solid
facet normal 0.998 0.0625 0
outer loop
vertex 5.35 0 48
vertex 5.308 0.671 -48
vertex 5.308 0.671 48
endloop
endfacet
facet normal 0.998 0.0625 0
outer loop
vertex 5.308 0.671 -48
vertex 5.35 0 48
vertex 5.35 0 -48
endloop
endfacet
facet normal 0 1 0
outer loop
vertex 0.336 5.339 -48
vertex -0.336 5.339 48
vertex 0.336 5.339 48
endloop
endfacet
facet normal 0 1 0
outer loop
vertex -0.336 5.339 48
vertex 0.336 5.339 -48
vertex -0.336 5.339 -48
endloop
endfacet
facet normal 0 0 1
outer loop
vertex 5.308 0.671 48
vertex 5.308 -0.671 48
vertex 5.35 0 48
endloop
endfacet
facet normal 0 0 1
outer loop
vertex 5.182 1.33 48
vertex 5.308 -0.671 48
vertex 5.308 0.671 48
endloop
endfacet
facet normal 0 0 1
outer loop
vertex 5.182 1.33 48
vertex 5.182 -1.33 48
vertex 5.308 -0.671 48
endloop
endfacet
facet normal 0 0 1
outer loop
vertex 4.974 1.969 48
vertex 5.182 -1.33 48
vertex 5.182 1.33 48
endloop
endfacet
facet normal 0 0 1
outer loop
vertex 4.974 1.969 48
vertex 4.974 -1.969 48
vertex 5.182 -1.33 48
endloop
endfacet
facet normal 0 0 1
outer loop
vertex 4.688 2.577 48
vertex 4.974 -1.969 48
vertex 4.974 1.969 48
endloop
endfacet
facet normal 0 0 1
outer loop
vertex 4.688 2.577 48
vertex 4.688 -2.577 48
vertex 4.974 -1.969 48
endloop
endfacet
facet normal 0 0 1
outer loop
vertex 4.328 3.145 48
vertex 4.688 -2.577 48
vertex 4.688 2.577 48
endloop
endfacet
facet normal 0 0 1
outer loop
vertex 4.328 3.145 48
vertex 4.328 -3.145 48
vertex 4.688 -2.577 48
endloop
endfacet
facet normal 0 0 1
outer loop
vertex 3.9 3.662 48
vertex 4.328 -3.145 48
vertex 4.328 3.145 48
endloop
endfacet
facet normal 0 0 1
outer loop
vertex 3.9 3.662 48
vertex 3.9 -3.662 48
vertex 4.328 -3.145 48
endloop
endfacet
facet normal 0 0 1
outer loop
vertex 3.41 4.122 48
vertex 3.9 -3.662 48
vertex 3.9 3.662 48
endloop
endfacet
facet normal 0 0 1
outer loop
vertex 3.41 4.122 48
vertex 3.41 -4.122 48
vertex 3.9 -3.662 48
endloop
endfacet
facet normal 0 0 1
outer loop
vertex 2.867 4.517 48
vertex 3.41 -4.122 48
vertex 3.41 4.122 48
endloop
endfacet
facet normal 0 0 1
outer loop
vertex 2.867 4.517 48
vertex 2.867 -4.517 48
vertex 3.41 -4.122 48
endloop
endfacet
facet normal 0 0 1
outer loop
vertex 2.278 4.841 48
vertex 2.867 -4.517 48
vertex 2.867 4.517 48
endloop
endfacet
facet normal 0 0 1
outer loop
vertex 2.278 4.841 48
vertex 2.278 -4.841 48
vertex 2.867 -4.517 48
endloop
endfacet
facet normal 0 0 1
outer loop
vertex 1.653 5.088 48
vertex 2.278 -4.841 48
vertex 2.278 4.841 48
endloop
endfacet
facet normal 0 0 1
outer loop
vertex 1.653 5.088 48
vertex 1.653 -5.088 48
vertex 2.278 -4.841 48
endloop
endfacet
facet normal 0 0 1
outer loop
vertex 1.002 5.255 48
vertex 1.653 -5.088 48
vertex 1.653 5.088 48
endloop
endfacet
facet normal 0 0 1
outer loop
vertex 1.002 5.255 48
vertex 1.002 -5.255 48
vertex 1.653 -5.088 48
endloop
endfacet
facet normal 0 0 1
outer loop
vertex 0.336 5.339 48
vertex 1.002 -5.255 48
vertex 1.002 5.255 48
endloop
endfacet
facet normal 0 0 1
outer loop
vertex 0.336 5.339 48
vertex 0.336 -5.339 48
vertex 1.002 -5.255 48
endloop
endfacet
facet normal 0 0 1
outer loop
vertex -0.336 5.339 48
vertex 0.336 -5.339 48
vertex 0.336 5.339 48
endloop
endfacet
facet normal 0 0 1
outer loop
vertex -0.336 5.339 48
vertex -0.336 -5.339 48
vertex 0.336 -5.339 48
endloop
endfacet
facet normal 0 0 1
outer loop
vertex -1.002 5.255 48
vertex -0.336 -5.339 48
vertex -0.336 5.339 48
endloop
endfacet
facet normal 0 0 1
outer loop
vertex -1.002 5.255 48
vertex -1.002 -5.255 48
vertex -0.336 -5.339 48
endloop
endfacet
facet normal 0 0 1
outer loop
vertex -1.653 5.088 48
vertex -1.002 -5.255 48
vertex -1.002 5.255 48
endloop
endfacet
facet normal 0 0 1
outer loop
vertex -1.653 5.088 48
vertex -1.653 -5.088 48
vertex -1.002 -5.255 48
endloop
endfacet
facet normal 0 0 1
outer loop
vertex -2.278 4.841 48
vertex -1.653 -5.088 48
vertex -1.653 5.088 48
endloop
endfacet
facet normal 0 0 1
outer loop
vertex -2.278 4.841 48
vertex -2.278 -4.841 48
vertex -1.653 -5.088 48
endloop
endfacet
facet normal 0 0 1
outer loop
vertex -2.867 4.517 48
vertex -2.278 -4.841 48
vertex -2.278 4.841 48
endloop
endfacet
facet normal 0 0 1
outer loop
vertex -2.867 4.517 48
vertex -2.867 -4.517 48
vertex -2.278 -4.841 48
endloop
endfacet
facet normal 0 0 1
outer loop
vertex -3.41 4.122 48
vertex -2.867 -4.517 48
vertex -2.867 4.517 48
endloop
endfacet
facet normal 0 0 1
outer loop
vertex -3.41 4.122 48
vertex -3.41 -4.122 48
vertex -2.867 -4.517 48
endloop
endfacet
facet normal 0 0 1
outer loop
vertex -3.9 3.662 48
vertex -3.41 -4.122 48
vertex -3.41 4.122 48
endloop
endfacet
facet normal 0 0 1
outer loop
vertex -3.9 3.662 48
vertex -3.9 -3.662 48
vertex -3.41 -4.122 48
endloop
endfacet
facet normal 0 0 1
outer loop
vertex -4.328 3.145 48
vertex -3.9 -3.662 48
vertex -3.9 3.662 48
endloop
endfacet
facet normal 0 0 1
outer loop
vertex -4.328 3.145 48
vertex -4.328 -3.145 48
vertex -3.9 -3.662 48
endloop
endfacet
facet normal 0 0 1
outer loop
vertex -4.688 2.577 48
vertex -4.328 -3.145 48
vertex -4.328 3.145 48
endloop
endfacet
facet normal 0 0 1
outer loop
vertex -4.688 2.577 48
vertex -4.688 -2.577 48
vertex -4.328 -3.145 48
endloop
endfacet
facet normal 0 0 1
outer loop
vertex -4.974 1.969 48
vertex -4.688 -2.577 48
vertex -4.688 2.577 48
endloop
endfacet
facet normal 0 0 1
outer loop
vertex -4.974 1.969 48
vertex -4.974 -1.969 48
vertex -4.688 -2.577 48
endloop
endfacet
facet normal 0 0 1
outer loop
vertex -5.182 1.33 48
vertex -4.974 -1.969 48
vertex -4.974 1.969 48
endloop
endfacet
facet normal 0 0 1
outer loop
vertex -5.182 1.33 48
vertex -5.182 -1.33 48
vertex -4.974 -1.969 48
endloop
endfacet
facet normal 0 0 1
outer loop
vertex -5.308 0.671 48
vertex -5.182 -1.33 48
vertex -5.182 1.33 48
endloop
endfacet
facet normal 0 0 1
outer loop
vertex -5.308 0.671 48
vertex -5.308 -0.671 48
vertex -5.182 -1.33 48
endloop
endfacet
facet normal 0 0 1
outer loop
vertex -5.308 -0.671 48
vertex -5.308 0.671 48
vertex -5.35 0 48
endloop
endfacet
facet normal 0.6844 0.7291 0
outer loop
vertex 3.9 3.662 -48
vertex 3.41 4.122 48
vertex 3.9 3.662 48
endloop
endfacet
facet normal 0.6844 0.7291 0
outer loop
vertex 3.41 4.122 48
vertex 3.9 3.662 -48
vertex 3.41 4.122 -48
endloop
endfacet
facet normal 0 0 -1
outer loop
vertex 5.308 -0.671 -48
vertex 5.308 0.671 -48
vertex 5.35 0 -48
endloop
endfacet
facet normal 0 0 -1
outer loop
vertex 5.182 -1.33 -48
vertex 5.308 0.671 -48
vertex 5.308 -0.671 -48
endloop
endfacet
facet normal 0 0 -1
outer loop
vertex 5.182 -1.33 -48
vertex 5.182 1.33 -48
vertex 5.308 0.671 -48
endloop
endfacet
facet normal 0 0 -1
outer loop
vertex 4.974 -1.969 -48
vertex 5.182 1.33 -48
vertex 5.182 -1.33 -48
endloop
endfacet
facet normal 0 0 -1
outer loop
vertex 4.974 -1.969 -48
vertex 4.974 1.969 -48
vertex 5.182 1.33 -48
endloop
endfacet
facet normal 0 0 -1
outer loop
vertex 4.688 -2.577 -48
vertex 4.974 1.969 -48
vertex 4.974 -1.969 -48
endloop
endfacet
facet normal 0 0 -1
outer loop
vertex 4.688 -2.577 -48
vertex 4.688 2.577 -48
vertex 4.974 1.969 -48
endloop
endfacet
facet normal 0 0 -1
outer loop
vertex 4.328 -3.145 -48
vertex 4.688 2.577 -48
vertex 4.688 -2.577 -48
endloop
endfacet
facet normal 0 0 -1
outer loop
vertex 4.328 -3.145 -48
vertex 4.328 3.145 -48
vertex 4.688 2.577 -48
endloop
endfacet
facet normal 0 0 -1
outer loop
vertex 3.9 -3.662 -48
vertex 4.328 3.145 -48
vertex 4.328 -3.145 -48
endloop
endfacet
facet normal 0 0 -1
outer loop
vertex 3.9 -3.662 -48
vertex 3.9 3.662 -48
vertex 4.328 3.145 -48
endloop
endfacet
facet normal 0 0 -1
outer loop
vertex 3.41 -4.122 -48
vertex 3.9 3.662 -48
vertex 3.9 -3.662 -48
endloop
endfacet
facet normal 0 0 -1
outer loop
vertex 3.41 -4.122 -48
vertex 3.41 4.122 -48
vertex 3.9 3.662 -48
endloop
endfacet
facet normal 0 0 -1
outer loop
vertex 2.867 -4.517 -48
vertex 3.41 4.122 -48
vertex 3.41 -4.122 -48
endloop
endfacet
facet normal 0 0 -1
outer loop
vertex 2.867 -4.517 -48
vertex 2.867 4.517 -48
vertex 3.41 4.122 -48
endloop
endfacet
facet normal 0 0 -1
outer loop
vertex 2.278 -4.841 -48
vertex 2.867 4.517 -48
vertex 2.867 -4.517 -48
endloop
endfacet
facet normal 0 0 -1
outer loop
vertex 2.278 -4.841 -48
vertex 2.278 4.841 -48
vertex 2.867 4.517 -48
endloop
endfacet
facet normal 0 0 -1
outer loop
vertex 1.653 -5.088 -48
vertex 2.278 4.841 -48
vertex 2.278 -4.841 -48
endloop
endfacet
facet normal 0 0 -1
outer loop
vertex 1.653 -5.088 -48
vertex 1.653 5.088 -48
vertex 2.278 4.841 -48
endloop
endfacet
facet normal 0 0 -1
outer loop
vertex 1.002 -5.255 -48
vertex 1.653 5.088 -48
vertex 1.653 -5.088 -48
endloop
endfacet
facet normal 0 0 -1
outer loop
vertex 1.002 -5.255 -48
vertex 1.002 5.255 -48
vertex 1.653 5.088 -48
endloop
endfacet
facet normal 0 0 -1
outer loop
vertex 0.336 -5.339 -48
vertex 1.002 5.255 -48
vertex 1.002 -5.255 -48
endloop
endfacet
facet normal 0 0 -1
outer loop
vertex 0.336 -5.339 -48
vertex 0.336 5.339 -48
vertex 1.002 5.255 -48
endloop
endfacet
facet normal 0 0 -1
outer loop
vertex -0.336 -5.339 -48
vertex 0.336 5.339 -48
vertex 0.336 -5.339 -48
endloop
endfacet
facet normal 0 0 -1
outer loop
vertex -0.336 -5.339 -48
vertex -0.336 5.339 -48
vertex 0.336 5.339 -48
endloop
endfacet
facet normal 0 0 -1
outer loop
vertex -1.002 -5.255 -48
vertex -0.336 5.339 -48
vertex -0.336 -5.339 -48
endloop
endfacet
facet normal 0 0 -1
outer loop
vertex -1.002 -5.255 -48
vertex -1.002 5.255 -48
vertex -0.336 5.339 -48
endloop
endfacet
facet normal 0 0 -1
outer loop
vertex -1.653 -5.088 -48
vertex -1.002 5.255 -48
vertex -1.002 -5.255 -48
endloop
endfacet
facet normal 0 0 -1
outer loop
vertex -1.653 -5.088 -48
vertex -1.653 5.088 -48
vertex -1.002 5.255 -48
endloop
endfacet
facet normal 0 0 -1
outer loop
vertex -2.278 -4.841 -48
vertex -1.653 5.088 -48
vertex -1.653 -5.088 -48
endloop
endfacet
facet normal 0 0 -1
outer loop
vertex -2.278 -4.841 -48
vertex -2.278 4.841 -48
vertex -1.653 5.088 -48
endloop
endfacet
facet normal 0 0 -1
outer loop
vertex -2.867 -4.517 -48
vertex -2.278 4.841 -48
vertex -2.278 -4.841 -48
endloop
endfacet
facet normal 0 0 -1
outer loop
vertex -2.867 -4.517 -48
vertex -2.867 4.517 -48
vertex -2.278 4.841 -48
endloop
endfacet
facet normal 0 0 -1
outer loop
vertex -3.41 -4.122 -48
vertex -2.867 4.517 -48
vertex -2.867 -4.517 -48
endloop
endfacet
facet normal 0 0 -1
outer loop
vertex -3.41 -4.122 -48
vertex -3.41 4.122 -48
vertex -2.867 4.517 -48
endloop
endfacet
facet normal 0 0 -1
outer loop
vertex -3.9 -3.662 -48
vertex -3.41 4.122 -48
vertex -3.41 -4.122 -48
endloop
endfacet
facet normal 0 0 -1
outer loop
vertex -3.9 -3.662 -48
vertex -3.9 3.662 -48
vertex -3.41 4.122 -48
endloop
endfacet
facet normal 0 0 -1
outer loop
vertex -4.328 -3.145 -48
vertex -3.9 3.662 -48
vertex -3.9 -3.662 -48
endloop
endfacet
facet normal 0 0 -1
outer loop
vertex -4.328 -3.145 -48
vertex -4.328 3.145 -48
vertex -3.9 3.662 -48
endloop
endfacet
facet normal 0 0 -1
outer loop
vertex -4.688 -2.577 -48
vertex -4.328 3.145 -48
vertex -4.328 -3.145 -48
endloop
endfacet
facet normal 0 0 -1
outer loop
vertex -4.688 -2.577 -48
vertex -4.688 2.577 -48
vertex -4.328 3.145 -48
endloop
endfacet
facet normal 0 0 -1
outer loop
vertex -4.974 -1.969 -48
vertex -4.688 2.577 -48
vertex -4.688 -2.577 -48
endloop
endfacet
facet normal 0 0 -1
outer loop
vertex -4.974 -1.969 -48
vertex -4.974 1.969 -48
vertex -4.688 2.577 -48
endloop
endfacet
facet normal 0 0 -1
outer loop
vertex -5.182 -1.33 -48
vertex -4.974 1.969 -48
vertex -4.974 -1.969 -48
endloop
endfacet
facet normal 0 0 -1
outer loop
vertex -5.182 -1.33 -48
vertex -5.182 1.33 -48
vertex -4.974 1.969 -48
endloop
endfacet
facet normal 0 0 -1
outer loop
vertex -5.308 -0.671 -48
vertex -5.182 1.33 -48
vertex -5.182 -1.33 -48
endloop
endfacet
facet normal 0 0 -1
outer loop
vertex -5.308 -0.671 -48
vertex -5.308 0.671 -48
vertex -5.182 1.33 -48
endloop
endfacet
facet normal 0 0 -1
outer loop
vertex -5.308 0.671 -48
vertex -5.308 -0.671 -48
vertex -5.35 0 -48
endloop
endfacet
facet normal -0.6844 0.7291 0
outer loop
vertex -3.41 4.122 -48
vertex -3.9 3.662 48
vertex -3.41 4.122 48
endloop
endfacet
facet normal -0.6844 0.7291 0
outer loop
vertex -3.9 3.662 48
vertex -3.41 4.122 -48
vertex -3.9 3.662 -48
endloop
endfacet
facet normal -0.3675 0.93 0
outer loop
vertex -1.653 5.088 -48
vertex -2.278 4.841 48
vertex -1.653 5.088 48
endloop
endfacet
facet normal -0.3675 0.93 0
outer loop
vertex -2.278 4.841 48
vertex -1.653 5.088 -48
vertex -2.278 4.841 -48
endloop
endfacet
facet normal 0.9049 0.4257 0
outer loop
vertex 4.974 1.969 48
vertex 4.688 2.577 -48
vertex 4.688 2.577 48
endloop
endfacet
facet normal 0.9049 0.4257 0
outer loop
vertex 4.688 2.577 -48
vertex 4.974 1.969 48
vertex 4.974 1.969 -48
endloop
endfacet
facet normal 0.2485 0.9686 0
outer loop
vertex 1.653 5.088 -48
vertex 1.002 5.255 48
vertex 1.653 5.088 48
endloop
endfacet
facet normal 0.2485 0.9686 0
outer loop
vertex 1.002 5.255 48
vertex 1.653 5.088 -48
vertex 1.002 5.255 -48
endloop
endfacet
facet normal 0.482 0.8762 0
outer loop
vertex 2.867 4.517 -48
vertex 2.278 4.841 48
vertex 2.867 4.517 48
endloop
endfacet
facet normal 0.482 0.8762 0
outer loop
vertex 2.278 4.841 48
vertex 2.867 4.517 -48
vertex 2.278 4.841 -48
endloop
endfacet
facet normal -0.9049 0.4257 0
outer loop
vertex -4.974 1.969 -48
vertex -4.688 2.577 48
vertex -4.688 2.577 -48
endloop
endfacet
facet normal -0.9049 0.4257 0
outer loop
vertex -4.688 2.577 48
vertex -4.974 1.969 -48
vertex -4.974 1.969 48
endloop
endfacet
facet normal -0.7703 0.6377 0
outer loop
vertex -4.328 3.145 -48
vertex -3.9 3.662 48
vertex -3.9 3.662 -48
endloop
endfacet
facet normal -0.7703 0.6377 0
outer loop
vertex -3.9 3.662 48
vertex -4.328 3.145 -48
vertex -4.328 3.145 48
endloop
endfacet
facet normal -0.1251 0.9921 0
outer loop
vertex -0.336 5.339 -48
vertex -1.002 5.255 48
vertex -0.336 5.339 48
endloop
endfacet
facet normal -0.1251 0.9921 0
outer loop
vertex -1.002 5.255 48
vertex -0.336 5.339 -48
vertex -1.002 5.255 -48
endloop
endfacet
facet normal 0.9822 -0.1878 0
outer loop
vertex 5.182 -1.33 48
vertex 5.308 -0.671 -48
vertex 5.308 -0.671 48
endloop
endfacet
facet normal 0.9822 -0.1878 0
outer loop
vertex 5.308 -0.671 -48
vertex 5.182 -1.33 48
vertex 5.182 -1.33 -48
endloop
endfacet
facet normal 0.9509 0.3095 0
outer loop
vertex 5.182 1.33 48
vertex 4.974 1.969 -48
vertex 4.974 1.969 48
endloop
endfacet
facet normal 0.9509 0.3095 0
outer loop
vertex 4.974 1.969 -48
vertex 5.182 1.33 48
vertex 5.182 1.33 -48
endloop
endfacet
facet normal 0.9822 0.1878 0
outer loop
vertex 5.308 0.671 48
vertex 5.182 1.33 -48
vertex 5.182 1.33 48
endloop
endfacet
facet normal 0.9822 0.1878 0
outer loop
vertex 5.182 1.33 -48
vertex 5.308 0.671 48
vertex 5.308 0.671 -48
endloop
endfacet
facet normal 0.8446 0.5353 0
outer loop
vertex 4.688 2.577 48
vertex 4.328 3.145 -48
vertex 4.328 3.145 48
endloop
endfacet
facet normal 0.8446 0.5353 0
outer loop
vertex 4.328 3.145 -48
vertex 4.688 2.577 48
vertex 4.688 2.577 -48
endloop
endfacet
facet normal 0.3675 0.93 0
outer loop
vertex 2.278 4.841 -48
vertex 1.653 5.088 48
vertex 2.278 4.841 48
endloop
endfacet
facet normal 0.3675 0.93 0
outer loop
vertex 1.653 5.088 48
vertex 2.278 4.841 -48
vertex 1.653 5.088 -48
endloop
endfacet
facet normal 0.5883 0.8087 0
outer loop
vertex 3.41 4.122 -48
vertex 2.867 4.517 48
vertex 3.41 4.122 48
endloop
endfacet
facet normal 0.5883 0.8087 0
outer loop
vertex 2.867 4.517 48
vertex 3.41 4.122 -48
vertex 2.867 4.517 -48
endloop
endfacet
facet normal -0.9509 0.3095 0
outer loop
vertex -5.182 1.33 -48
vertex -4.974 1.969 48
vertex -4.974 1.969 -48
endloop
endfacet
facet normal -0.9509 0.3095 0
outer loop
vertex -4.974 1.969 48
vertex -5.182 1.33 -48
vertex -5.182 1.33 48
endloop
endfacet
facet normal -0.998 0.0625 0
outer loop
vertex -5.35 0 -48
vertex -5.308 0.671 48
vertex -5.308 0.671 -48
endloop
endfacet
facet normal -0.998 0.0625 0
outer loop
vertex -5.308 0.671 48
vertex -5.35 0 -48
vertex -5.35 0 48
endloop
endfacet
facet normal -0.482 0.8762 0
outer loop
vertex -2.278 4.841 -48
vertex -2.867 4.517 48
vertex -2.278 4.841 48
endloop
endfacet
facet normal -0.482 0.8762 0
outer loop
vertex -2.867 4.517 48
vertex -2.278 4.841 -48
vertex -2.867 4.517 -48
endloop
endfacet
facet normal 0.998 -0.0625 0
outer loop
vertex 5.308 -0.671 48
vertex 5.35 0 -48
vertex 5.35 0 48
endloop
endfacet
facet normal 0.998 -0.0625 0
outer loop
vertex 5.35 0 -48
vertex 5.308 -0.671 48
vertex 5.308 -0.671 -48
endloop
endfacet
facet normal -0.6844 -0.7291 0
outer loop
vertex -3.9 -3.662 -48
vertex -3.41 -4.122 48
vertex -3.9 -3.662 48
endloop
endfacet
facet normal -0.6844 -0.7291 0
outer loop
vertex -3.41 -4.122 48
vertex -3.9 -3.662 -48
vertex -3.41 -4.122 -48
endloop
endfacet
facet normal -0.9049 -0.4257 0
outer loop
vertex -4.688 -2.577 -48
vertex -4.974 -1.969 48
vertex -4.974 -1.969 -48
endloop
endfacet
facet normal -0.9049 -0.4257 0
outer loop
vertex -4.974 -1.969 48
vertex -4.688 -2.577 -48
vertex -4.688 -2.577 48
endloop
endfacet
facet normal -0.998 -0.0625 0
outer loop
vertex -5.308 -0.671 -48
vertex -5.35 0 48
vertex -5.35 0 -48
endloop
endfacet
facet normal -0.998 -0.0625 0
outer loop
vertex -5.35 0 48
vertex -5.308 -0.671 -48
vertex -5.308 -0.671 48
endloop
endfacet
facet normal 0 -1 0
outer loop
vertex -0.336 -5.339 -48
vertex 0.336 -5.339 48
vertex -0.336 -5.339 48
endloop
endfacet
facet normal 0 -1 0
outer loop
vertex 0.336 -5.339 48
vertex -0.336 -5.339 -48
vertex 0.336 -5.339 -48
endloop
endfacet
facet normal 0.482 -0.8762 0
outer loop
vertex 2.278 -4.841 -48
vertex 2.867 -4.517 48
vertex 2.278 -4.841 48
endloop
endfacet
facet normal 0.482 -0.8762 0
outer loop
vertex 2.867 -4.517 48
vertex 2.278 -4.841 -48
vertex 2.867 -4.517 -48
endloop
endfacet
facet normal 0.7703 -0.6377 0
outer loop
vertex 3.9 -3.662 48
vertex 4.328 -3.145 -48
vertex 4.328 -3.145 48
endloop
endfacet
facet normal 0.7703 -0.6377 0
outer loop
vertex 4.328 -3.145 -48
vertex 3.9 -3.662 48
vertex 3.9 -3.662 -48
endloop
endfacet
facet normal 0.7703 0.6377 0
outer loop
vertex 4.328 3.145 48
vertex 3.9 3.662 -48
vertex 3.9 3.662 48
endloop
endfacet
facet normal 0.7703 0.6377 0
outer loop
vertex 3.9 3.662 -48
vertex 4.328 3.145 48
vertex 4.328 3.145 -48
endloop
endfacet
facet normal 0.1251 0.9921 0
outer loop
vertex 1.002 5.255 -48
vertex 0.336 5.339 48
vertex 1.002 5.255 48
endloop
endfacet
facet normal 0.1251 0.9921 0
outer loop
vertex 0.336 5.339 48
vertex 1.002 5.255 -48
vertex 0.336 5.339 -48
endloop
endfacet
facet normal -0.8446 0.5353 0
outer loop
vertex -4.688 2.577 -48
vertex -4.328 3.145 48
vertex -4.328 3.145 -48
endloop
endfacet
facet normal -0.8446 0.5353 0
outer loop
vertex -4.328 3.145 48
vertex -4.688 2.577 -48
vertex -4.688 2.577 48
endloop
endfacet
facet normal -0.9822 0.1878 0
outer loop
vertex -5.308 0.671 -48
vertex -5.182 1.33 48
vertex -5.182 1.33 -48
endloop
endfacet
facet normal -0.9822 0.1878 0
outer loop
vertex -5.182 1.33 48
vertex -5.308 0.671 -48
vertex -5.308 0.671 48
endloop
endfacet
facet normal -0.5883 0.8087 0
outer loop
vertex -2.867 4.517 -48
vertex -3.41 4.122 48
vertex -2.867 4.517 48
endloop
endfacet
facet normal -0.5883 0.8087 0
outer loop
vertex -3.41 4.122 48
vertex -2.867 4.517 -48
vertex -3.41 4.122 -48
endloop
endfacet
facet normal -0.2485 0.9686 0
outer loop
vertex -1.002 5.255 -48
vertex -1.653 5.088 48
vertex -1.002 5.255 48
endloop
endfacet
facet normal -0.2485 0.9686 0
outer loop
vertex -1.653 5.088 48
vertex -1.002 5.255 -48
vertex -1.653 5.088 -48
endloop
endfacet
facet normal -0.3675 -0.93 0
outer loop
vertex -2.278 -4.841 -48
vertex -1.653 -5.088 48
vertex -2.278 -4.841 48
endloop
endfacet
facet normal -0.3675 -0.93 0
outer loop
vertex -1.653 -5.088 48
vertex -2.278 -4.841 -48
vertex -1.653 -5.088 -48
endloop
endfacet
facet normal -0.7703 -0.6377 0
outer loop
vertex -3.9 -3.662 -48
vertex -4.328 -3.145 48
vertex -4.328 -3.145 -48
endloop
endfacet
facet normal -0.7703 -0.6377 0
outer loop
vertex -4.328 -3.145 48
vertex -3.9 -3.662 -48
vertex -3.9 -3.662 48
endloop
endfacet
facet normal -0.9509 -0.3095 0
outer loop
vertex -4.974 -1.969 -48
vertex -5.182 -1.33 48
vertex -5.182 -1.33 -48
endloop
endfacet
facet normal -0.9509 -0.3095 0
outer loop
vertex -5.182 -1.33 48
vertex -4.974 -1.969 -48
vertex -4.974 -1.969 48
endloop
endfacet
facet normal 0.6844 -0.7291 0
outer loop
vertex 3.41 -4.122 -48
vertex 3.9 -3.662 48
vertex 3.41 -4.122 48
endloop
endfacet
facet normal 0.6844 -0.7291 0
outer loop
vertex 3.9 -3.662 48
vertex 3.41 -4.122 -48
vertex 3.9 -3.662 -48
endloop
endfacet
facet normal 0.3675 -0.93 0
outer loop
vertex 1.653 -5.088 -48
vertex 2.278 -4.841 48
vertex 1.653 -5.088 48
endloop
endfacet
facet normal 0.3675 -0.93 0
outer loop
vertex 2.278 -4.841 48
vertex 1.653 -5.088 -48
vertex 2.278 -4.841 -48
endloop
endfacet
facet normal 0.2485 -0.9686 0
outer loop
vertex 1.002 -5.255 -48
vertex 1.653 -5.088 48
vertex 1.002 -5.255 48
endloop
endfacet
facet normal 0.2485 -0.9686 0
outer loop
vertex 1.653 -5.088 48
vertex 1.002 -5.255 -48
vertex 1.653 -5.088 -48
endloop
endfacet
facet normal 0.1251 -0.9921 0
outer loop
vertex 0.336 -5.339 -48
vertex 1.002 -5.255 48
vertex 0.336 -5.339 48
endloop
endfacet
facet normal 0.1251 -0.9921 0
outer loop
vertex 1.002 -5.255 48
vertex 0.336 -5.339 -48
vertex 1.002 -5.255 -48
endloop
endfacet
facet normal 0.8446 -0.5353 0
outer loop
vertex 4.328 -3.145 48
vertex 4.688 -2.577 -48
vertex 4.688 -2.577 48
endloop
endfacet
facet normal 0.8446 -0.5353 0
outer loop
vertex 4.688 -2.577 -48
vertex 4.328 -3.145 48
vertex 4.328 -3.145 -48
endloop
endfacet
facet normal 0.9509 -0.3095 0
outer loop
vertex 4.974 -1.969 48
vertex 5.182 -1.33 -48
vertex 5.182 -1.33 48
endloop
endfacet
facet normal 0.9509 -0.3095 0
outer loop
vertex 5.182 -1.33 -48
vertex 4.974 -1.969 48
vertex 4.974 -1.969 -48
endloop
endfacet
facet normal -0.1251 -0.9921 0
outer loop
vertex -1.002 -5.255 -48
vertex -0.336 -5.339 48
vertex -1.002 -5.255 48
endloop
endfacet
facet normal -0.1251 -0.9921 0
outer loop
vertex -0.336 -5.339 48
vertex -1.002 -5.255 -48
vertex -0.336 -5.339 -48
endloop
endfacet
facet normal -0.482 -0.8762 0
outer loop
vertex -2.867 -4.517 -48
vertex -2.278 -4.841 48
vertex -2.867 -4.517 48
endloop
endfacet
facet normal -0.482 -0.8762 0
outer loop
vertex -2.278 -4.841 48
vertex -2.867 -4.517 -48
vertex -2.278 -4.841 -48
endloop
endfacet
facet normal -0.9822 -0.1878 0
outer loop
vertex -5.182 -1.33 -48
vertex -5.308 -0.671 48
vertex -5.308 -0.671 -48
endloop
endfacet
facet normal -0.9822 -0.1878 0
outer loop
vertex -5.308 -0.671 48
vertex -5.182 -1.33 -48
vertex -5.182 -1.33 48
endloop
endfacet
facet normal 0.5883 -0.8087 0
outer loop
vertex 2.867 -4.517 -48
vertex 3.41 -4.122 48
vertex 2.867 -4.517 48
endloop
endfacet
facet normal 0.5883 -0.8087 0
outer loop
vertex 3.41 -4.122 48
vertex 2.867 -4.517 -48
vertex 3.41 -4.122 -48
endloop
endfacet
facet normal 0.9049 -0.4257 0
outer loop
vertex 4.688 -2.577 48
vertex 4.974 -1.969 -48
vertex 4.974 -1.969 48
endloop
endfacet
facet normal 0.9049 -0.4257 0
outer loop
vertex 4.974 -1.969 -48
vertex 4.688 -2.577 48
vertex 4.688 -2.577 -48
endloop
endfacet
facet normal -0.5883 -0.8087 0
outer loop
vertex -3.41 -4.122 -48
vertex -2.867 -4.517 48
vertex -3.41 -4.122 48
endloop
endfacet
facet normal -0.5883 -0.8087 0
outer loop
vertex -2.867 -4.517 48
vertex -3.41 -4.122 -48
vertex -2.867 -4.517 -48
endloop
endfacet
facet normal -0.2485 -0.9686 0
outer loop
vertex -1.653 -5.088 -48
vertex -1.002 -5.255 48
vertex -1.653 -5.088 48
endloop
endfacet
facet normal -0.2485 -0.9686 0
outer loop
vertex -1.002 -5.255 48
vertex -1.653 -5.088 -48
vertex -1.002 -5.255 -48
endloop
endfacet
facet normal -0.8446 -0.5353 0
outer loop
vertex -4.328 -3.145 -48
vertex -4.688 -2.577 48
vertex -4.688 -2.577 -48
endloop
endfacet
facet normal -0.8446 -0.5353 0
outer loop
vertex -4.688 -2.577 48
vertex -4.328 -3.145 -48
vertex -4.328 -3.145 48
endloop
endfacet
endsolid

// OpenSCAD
$fn = 50;


difference() {
	union() {
		translate(v = [0, 0, -48.0000000000]) {
			cylinder(h = 96, r = 5.3500000000);
		}
	}
	union() {
		translate(v = [0, 0, -100.0000000000]) {
			cylinder(h = 200, r = 0);
		}
	}
}
